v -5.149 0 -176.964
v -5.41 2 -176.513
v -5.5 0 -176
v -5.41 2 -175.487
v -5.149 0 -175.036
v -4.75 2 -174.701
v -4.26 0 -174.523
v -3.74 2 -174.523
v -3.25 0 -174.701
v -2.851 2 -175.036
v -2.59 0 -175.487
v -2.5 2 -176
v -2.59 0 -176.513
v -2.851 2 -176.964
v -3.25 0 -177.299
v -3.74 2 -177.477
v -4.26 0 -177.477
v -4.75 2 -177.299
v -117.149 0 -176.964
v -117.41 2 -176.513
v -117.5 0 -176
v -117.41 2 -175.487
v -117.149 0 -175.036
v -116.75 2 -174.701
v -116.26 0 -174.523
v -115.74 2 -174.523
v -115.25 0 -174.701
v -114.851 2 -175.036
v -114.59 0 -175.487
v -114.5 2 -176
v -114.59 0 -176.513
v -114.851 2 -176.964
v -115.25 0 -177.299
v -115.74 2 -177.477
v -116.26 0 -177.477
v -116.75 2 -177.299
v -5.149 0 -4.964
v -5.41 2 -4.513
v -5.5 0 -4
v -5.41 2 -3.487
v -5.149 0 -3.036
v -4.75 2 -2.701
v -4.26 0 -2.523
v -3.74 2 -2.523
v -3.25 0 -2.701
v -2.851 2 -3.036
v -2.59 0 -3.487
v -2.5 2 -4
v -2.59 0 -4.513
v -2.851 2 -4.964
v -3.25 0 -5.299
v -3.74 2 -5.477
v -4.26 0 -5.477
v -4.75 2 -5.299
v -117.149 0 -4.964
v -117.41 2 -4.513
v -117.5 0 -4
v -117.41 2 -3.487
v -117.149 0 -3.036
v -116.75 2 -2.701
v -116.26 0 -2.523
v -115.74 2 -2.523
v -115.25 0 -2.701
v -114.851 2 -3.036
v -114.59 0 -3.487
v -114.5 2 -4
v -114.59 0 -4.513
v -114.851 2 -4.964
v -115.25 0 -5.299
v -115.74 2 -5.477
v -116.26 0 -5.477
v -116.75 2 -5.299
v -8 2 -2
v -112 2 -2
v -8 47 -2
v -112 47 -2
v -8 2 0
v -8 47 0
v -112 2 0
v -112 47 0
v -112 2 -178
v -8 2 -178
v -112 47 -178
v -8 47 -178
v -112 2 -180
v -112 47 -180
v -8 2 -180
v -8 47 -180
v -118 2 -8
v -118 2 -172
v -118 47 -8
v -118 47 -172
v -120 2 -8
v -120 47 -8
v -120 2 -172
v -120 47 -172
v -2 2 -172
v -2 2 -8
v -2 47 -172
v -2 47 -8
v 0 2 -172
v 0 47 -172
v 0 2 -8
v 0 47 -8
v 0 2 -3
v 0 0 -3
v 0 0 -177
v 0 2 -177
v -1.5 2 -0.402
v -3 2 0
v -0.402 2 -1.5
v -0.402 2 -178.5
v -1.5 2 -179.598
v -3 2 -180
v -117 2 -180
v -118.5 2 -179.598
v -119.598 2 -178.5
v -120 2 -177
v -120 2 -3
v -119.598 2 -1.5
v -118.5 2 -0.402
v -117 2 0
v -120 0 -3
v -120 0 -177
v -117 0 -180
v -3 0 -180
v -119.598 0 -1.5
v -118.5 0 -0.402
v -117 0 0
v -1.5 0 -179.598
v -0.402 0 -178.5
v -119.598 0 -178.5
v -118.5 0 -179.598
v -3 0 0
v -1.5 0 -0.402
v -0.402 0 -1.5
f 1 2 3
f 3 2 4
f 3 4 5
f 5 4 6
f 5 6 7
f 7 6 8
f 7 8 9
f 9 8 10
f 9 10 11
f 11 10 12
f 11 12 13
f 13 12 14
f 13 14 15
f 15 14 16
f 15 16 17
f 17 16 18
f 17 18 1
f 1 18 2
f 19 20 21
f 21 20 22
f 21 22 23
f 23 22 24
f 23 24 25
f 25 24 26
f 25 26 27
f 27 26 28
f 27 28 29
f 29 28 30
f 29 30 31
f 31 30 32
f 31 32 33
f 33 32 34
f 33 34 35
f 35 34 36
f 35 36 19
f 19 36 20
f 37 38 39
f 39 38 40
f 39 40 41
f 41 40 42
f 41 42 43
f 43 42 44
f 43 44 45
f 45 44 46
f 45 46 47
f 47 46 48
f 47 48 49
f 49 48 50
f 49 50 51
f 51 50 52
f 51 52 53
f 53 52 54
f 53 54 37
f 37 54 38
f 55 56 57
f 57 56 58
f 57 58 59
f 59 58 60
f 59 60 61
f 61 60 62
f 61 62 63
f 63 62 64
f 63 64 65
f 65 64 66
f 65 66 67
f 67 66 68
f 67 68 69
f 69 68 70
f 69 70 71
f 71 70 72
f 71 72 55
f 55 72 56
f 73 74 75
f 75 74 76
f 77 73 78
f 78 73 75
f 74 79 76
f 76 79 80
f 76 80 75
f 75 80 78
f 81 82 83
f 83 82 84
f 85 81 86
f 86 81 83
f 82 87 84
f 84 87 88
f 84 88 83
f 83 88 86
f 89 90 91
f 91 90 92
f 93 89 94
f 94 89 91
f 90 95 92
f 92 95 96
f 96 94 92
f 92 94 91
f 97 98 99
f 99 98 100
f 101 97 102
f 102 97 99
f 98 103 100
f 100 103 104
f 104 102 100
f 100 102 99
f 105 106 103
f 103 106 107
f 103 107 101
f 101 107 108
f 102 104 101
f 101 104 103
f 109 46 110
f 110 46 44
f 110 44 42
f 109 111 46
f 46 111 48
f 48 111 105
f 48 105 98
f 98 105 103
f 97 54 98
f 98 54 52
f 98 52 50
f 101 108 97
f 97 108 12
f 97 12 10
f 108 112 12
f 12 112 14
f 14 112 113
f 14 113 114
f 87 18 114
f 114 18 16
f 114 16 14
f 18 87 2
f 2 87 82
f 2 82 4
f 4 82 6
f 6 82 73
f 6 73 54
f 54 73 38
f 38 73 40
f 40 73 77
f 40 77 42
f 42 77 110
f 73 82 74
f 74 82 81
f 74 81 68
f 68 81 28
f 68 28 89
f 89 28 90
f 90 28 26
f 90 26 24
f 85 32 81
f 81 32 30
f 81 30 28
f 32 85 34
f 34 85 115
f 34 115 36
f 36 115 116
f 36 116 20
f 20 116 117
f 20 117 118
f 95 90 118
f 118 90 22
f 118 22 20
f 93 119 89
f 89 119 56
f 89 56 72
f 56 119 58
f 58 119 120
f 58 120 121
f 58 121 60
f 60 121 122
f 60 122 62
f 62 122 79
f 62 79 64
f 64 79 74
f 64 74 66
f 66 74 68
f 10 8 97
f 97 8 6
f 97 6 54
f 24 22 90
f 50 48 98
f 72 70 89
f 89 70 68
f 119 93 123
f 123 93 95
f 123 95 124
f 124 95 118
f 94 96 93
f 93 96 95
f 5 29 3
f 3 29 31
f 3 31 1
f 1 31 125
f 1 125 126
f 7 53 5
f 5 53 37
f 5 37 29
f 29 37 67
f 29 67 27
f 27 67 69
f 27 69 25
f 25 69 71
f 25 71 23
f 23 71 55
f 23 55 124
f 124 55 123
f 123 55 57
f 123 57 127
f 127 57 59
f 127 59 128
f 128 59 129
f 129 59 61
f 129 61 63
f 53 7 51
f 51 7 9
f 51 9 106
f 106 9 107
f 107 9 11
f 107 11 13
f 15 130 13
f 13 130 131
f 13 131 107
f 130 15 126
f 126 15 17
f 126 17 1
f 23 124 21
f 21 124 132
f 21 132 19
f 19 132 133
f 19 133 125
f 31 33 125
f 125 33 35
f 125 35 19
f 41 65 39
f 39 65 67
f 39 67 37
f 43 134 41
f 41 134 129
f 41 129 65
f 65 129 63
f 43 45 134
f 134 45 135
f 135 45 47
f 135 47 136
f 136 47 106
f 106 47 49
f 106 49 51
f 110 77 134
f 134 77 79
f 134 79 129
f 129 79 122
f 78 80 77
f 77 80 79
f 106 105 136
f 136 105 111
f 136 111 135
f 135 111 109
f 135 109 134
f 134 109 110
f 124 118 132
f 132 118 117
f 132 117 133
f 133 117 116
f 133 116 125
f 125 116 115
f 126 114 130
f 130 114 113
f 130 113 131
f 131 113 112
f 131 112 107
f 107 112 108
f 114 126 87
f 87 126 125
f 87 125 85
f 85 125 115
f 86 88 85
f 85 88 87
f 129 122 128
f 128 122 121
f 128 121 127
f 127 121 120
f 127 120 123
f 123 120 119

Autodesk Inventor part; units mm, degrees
ref_plane "YZ Plane" through (0, 0, 0) normal (1, 0, 0) x (0, 1, 0)
ref_plane "XZ Plane" through (0, 0, 0) normal (0, 1, 0) x (-1, 0, 0)
ref_plane "XY Plane" through (0, 0, 0) normal (0, 0, 1) x (1, 0, 0)
sketch "Sketch1" plane through (0, 0, 0) normal (0, 1, 0) x (-1, 0, 0)
  line L0 (0, 0) -> (120, 0)
  line L1 (120, 0) -> (120, -180)
  line L2 (120, -180) -> (0, -180)
  line L3 (0, -180) -> (0, 0)
  dimension "d0" = 120
  dimension "d1" = 180
extrude "Extrusion1" add sketch "Sketch1" along normal blind 2
sketch "Sketch2" plane through (0, 2, 0) normal (0, 1, 0) x (1, 0, 0)
  line L0 (-120, 0) -> (0, 0) projected
  line L1 (0, 0) -> (-8, 0)
  line L2 (-8, 0) -> (-8, 8)
  line L3 (-8, 8) -> (0, 8)
  line L4 (0, 8) -> (0, 0)
  line L5 (-120, 180) -> (-120, 0) projected
  line L6 (-120, 90) -> (0, 90)
  line L7 (0, 0) -> (0, 180) projected
  line L8 (-60, 0) -> (-60, 180)
  line L9 (0, 180) -> (-120, 180) projected
  line L10 (0, 180) -> (-8, 180)
  line L11 (-8, 180) -> (-8, 172)
  line L12 (-8, 172) -> (0, 172)
  line L13 (0, 172) -> (0, 180)
  line L14 (-120, 0) -> (-112, 0)
  line L15 (-112, 0) -> (-112, 8)
  line L16 (-112, 8) -> (-120, 8)
  line L17 (-120, 8) -> (-120, 0)
  line L18 (-120, 180) -> (-112, 180)
  line L19 (-112, 180) -> (-112, 172)
  line L20 (-112, 172) -> (-120, 172)
  line L21 (-120, 172) -> (-120, 180)
  line L22 (-120, 8) -> (-118, 8)
  line L23 (-118, 8) -> (-118, 172)
  line L24 (-118, 172) -> (-120, 172)
  line L25 (-120, 172) -> (-120, 8)
  line L26 (0, 172) -> (-2, 172)
  line L27 (-2, 172) -> (-2, 8)
  line L28 (-2, 8) -> (0, 8)
  line L29 (0, 8) -> (0, 172)
  line L30 (-8, 0) -> (-112, 0)
  line L31 (-112, 0) -> (-112, 2)
  line L32 (-112, 2) -> (-8, 2)
  line L33 (-8, 2) -> (-8, 0)
  line L34 (-8, 180) -> (-112, 180)
  line L35 (-112, 180) -> (-112, 178)
  line L36 (-112, 178) -> (-8, 178)
  line L37 (-8, 178) -> (-8, 180)
  point P0 (-8, 2)
  point P1 (-8, 178)
  dimension "d4" = 8
  dimension "d5" = 8
  dimension "d10" = 2
  dimension "d12" = 2
  dimension "d13" = 2
  dimension "d21" = 2
extrude "Extrusion2" add sketch "Sketch2" along normal blind 45 contours L15 L32 L8 L0 | L5 L6 L23 L16 | L8 L32 L2 L0 | L5 L20 L23 L6 | L3 L27 L6 L7 | L27 L12 L7 L6 | L36 L19 L9 L8 | L8 L9 L11 L36
sketch "Sketch4" plane through (0, 2, 0) normal (0, 1, 0) x (1, 0, 0)
  line L0 (0, 0) -> (-4, 0)
  line L1 (-4, 0) -> (-4, 4)
  line L2 (-4, 4) -> (0, 4)
  line L3 (0, 4) -> (0, 0)
  circle A0 centre (-4, 4) radius 1.5
  line L4 (-120, 180) -> (-120, 0) projected
  line L5 (-120, 90) -> (0, 90)
  line L6 (0, 8) -> (0, 180) projected
  line L7 (-120, 0) -> (0, 0) projected
  line L8 (-60, 0) -> (-60, 180)
  line L9 (0, 180) -> (-120, 180) projected
  circle A1 centre (-4, 176) radius 1.5
  circle A2 centre (-116, 4) radius 1.5
  circle A3 centre (-116, 176) radius 1.5
  point P0 (-120, 172)
  point P1 (-120, 8)
  point P2 (0, 172)
  dimension "d16" = 4
  dimension "d17" = 4
  dimension "d18" = 3
extrude "Extrusion3" cut sketch "Sketch4" against normal blind 45 contours A0 L2 L1 | L1 L2 A0 | A1 | A2 | A3
fillet "Fillet1" radius 3 4 edges at (-120, 1, -180) (0, 1, -180) (-120, 1, 0) (0, 1, 0)
properties part number "reduced_tortoise_base"
